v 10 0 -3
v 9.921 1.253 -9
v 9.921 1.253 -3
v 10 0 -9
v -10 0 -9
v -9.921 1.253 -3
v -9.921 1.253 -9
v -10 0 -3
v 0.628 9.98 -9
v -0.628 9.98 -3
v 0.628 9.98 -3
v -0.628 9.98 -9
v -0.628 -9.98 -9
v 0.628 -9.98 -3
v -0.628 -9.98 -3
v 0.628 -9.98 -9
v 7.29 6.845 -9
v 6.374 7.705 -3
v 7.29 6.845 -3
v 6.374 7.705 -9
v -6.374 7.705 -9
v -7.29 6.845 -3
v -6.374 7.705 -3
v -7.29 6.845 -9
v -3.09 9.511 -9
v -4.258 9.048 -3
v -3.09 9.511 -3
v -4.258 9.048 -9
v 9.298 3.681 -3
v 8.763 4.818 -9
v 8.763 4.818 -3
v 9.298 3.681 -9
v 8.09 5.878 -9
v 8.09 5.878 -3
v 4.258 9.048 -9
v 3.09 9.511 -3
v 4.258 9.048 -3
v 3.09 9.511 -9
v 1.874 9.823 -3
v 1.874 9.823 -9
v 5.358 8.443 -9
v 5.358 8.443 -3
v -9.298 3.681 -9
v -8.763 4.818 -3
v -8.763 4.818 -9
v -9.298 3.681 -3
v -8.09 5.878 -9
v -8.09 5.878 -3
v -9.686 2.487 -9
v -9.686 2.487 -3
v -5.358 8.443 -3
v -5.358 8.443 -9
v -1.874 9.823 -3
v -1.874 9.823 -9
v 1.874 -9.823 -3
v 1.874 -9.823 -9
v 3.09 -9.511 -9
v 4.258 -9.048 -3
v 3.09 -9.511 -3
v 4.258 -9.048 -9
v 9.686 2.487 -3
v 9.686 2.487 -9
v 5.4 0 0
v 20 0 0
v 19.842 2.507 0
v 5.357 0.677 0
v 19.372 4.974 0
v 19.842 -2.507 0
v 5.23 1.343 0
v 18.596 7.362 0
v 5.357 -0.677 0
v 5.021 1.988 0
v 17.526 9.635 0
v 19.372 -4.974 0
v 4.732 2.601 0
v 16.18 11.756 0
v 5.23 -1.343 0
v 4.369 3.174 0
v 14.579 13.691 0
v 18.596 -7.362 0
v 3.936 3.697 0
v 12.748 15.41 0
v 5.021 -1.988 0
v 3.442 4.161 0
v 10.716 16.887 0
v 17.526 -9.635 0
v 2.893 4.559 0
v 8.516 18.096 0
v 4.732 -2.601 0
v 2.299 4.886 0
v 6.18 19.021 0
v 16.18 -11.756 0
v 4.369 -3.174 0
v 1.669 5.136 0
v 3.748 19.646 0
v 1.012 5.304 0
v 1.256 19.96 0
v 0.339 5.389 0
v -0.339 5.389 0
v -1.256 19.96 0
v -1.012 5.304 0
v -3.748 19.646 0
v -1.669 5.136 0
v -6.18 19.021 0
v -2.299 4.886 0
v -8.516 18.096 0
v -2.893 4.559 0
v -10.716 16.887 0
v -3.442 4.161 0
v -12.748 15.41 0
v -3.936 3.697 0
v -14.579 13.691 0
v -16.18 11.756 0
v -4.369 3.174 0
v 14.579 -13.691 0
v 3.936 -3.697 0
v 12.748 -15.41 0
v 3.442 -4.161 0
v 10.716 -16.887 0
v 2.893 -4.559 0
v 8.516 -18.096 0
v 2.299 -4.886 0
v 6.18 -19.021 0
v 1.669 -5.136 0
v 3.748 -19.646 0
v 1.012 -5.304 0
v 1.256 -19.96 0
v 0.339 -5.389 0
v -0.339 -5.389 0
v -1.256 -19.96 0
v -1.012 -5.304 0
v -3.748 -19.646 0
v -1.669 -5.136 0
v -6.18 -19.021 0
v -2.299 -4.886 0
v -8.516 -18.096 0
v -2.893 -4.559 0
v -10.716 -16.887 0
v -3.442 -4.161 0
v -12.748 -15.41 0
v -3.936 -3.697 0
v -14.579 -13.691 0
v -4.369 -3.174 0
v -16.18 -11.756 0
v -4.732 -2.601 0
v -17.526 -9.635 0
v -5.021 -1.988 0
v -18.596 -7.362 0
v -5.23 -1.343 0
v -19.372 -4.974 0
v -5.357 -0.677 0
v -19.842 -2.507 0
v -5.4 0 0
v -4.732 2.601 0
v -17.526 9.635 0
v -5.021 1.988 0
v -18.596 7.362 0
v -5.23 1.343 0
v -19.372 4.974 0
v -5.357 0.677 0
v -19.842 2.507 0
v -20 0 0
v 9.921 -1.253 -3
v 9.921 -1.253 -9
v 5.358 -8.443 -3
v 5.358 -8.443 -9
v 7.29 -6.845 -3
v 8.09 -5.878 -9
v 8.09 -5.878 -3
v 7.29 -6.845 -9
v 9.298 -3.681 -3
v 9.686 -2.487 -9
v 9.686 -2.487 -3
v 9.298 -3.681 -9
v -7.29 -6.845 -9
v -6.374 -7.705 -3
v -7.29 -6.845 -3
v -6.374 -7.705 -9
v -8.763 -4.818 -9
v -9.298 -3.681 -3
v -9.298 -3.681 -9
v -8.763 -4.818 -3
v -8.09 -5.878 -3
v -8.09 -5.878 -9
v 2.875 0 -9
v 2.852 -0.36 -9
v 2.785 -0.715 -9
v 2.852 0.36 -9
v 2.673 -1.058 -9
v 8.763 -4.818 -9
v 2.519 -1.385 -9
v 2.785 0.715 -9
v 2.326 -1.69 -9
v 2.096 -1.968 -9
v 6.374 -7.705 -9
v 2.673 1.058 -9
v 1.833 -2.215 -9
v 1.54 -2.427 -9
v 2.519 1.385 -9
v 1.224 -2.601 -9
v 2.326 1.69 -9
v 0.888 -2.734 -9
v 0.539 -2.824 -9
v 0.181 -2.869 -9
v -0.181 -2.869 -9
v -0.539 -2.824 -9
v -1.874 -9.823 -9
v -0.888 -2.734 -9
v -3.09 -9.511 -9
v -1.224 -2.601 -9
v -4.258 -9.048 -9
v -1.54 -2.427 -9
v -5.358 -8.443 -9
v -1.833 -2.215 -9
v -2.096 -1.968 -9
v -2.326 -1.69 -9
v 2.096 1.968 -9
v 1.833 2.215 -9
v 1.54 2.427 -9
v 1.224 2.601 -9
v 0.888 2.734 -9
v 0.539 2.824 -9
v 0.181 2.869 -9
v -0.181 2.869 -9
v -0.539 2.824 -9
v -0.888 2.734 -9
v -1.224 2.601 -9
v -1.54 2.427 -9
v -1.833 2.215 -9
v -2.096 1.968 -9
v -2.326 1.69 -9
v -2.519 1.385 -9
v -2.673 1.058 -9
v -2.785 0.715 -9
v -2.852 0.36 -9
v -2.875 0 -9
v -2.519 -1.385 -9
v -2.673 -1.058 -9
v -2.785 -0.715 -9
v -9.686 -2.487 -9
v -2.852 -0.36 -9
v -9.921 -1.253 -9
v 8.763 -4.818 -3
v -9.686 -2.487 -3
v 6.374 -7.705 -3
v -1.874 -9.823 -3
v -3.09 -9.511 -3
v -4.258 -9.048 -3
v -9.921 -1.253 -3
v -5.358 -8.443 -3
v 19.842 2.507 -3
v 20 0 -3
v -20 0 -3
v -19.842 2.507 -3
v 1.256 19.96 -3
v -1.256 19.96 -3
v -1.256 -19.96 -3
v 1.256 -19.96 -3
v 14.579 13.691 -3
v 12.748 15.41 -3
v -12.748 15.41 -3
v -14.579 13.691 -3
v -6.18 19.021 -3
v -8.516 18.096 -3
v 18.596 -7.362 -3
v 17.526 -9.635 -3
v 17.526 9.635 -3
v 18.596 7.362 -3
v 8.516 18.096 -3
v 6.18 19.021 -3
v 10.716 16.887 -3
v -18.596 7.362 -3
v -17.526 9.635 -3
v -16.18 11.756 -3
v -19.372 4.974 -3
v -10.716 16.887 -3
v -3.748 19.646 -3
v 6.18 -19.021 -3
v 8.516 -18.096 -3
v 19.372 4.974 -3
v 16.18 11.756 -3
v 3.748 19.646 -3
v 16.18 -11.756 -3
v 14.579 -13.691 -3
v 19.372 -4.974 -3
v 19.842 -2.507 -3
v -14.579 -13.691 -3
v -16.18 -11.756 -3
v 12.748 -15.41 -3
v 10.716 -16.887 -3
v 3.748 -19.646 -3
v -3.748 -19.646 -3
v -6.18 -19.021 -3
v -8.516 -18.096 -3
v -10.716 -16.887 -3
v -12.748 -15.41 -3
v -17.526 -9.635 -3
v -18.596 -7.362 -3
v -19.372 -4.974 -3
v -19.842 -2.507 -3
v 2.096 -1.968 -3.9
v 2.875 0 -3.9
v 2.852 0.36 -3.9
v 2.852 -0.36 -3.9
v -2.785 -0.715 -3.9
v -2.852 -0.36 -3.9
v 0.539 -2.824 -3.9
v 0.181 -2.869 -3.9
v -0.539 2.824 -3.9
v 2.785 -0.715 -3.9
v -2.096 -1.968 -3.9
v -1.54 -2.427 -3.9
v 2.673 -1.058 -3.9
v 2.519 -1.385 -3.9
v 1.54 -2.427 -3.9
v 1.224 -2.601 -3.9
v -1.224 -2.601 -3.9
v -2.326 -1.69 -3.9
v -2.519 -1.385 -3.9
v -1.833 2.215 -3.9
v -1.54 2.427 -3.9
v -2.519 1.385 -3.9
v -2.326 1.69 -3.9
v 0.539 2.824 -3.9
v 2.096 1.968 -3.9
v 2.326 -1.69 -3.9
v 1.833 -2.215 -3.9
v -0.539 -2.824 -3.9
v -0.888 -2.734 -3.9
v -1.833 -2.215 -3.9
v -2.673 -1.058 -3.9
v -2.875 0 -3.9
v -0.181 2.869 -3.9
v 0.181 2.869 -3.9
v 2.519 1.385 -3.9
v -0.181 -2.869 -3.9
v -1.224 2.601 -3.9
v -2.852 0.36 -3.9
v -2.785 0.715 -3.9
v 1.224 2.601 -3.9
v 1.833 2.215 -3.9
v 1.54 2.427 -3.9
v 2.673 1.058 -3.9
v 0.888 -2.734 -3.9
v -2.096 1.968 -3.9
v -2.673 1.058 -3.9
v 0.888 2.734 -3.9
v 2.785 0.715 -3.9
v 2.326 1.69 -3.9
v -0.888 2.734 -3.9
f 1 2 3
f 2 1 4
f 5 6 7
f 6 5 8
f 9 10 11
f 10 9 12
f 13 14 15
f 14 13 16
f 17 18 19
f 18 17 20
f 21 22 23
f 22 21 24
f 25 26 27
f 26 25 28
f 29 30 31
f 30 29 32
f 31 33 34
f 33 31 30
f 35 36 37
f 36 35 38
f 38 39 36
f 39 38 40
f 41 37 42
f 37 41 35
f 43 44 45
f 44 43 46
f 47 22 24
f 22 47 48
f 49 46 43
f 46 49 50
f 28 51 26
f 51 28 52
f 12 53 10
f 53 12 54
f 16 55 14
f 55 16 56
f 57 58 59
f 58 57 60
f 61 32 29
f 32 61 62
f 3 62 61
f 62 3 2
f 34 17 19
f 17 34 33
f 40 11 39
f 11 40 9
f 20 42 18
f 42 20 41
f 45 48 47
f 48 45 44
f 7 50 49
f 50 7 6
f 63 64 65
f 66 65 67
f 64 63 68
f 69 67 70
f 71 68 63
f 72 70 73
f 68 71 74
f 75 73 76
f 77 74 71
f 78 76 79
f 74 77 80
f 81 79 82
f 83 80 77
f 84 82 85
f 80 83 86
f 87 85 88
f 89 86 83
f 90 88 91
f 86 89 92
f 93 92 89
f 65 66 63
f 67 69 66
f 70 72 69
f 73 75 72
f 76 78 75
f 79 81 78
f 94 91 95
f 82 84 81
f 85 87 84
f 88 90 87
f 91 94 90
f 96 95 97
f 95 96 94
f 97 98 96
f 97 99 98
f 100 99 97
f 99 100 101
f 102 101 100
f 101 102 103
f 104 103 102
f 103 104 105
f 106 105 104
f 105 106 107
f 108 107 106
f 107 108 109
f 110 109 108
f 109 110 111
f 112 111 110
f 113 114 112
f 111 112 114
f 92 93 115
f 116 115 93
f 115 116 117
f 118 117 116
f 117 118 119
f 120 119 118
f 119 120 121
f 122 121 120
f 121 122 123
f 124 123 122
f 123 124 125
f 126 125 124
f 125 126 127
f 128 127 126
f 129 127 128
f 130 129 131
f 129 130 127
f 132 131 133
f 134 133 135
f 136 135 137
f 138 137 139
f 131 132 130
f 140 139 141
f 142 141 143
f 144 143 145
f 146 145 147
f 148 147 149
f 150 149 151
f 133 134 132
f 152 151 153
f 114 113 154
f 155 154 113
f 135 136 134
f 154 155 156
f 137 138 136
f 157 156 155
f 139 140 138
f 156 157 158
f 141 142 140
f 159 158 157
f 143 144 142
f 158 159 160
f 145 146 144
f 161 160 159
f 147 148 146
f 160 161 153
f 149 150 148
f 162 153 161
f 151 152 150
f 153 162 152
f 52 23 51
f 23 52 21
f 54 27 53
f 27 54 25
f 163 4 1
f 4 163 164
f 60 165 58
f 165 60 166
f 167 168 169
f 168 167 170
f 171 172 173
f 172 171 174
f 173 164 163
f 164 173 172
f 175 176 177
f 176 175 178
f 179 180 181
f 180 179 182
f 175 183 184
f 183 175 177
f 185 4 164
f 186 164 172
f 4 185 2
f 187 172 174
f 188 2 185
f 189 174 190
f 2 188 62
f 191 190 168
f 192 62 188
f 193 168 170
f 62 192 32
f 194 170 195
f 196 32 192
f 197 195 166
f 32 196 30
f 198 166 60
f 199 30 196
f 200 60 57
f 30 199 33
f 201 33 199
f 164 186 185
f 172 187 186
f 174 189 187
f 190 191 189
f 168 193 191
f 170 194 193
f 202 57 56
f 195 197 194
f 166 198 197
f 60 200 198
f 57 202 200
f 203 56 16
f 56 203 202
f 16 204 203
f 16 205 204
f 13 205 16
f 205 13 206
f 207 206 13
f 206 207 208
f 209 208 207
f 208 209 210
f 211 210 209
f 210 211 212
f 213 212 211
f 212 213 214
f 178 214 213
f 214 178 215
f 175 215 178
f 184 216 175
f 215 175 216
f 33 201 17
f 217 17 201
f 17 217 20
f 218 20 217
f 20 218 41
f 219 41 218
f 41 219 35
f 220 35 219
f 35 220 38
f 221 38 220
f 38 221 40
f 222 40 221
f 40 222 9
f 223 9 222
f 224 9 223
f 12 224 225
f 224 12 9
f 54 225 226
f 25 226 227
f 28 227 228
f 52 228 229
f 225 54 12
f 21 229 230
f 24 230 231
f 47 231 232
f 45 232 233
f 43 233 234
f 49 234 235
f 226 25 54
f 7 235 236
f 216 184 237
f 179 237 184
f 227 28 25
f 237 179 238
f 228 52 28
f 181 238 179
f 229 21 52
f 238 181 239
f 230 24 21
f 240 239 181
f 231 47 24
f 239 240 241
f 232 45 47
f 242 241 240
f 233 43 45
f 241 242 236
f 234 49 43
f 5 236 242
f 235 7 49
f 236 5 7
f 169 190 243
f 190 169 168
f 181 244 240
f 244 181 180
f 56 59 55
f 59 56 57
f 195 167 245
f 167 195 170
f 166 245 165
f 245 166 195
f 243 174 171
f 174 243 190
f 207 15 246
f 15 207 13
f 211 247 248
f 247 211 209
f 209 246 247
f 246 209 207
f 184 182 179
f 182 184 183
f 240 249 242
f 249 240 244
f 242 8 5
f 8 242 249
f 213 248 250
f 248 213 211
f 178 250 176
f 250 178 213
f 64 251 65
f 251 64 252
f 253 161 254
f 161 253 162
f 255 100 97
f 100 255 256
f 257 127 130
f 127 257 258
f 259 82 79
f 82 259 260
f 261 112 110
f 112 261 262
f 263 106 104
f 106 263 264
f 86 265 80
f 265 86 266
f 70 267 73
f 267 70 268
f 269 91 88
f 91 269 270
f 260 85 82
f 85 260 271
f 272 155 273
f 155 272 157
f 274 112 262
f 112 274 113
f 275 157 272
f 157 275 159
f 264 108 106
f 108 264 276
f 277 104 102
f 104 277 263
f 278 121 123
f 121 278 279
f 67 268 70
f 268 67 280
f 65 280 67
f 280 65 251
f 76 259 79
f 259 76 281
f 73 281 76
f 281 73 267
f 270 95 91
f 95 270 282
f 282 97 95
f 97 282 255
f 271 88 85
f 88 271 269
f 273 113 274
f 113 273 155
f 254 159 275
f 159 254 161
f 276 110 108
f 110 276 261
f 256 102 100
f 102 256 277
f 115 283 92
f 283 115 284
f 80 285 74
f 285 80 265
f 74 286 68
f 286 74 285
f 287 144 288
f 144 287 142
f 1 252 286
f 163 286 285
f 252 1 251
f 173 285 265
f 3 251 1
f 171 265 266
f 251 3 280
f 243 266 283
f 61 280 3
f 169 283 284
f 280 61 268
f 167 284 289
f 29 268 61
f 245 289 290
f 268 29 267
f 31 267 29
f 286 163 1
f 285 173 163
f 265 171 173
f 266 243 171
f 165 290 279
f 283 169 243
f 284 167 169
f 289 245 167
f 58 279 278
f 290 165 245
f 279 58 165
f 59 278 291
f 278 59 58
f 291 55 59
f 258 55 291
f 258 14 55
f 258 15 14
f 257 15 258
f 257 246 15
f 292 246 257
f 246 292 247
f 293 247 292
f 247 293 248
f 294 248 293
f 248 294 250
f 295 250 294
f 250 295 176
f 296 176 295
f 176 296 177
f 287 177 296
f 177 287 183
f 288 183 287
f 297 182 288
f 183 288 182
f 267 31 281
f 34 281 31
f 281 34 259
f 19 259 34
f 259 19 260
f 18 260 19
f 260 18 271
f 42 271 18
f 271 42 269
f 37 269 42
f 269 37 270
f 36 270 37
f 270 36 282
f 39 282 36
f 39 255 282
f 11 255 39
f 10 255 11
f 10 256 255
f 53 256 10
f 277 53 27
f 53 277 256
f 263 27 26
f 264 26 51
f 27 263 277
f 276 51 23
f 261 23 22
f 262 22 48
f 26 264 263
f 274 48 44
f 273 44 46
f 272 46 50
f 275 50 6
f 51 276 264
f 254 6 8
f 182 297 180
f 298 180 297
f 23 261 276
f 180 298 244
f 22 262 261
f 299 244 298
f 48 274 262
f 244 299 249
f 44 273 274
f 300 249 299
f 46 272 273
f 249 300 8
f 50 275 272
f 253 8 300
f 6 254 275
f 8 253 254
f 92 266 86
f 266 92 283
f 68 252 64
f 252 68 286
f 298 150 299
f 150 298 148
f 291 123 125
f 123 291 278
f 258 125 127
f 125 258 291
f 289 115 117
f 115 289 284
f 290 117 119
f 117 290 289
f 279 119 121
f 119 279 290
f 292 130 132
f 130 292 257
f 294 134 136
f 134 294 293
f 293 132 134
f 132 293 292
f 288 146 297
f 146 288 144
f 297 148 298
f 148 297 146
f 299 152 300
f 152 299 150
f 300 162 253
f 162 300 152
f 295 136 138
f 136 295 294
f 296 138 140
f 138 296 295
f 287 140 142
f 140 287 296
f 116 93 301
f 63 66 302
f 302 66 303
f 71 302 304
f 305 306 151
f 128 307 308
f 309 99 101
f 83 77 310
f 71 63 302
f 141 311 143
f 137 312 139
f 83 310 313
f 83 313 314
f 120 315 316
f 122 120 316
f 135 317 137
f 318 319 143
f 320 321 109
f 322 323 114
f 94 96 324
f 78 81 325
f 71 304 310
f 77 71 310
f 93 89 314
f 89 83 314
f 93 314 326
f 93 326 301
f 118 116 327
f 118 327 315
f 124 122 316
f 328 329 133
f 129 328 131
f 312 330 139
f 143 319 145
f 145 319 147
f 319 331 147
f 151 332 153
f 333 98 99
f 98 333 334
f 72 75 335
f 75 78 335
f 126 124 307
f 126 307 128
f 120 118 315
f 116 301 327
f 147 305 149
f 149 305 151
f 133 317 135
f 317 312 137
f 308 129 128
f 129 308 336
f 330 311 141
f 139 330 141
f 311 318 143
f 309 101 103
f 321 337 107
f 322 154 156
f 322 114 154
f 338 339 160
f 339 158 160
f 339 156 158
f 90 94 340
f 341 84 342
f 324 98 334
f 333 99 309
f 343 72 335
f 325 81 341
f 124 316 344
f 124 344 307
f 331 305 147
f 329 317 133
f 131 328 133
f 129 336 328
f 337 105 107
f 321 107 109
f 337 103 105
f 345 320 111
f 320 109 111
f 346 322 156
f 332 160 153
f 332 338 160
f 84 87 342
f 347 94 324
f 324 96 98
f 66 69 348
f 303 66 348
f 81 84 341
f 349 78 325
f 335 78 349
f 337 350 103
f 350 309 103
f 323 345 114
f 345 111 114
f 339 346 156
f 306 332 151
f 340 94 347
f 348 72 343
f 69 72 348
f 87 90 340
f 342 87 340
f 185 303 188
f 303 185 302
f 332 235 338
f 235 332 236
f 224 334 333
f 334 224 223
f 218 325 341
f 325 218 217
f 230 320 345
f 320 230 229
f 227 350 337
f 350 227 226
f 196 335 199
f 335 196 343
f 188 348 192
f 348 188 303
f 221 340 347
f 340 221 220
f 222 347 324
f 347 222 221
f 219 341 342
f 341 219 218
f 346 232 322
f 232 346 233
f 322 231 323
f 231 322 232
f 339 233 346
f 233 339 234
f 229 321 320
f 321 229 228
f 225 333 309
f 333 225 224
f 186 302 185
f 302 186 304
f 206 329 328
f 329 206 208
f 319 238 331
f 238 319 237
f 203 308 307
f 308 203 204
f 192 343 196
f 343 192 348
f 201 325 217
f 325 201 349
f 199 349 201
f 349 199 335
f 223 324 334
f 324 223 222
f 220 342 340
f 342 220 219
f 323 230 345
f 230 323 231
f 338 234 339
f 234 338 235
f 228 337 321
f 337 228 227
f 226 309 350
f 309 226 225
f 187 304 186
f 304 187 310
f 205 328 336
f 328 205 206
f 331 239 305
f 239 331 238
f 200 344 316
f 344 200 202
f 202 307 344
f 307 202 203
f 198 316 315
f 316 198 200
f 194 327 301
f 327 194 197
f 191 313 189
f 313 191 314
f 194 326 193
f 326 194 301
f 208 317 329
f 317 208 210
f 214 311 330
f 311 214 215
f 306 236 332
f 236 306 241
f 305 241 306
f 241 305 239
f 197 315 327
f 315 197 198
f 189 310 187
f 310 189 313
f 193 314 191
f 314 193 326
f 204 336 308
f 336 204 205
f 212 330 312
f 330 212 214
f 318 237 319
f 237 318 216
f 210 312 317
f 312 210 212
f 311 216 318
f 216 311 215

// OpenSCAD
$fn = 50;


difference() {
	union() {
		translate(v = [0, 0, -9.0000000000]) {
			cylinder(h = 9, r = 10.0000000000);
		}
		translate(v = [0, 0, -3.0000000000]) {
			cylinder(h = 3, r = 20.0000000000);
		}
	}
	union() {
		translate(v = [0, 0, 0]) {
			rotate(a = [0, 0, 0]) {
				difference() {
					union() {
						#translate(v = [0, 0, -9.0000000000]) {
							cylinder(h = 9, r = 2.6000000000);
						}
						#translate(v = [0, 0, -3.9000000000]) {
							cylinder(h = 3.9000000000, r1 = 2.8750000000, r2 = 5.4000000000);
						}
						#translate(v = [0, 0, -9.0000000000]) {
							cylinder(h = 9, r = 2.8750000000);
						}
						#translate(v = [0, 0, -9.0000000000]) {
							cylinder(h = 9, r = 2.6000000000);
						}
					}
					union();
				}
			}
		}
	}
}
